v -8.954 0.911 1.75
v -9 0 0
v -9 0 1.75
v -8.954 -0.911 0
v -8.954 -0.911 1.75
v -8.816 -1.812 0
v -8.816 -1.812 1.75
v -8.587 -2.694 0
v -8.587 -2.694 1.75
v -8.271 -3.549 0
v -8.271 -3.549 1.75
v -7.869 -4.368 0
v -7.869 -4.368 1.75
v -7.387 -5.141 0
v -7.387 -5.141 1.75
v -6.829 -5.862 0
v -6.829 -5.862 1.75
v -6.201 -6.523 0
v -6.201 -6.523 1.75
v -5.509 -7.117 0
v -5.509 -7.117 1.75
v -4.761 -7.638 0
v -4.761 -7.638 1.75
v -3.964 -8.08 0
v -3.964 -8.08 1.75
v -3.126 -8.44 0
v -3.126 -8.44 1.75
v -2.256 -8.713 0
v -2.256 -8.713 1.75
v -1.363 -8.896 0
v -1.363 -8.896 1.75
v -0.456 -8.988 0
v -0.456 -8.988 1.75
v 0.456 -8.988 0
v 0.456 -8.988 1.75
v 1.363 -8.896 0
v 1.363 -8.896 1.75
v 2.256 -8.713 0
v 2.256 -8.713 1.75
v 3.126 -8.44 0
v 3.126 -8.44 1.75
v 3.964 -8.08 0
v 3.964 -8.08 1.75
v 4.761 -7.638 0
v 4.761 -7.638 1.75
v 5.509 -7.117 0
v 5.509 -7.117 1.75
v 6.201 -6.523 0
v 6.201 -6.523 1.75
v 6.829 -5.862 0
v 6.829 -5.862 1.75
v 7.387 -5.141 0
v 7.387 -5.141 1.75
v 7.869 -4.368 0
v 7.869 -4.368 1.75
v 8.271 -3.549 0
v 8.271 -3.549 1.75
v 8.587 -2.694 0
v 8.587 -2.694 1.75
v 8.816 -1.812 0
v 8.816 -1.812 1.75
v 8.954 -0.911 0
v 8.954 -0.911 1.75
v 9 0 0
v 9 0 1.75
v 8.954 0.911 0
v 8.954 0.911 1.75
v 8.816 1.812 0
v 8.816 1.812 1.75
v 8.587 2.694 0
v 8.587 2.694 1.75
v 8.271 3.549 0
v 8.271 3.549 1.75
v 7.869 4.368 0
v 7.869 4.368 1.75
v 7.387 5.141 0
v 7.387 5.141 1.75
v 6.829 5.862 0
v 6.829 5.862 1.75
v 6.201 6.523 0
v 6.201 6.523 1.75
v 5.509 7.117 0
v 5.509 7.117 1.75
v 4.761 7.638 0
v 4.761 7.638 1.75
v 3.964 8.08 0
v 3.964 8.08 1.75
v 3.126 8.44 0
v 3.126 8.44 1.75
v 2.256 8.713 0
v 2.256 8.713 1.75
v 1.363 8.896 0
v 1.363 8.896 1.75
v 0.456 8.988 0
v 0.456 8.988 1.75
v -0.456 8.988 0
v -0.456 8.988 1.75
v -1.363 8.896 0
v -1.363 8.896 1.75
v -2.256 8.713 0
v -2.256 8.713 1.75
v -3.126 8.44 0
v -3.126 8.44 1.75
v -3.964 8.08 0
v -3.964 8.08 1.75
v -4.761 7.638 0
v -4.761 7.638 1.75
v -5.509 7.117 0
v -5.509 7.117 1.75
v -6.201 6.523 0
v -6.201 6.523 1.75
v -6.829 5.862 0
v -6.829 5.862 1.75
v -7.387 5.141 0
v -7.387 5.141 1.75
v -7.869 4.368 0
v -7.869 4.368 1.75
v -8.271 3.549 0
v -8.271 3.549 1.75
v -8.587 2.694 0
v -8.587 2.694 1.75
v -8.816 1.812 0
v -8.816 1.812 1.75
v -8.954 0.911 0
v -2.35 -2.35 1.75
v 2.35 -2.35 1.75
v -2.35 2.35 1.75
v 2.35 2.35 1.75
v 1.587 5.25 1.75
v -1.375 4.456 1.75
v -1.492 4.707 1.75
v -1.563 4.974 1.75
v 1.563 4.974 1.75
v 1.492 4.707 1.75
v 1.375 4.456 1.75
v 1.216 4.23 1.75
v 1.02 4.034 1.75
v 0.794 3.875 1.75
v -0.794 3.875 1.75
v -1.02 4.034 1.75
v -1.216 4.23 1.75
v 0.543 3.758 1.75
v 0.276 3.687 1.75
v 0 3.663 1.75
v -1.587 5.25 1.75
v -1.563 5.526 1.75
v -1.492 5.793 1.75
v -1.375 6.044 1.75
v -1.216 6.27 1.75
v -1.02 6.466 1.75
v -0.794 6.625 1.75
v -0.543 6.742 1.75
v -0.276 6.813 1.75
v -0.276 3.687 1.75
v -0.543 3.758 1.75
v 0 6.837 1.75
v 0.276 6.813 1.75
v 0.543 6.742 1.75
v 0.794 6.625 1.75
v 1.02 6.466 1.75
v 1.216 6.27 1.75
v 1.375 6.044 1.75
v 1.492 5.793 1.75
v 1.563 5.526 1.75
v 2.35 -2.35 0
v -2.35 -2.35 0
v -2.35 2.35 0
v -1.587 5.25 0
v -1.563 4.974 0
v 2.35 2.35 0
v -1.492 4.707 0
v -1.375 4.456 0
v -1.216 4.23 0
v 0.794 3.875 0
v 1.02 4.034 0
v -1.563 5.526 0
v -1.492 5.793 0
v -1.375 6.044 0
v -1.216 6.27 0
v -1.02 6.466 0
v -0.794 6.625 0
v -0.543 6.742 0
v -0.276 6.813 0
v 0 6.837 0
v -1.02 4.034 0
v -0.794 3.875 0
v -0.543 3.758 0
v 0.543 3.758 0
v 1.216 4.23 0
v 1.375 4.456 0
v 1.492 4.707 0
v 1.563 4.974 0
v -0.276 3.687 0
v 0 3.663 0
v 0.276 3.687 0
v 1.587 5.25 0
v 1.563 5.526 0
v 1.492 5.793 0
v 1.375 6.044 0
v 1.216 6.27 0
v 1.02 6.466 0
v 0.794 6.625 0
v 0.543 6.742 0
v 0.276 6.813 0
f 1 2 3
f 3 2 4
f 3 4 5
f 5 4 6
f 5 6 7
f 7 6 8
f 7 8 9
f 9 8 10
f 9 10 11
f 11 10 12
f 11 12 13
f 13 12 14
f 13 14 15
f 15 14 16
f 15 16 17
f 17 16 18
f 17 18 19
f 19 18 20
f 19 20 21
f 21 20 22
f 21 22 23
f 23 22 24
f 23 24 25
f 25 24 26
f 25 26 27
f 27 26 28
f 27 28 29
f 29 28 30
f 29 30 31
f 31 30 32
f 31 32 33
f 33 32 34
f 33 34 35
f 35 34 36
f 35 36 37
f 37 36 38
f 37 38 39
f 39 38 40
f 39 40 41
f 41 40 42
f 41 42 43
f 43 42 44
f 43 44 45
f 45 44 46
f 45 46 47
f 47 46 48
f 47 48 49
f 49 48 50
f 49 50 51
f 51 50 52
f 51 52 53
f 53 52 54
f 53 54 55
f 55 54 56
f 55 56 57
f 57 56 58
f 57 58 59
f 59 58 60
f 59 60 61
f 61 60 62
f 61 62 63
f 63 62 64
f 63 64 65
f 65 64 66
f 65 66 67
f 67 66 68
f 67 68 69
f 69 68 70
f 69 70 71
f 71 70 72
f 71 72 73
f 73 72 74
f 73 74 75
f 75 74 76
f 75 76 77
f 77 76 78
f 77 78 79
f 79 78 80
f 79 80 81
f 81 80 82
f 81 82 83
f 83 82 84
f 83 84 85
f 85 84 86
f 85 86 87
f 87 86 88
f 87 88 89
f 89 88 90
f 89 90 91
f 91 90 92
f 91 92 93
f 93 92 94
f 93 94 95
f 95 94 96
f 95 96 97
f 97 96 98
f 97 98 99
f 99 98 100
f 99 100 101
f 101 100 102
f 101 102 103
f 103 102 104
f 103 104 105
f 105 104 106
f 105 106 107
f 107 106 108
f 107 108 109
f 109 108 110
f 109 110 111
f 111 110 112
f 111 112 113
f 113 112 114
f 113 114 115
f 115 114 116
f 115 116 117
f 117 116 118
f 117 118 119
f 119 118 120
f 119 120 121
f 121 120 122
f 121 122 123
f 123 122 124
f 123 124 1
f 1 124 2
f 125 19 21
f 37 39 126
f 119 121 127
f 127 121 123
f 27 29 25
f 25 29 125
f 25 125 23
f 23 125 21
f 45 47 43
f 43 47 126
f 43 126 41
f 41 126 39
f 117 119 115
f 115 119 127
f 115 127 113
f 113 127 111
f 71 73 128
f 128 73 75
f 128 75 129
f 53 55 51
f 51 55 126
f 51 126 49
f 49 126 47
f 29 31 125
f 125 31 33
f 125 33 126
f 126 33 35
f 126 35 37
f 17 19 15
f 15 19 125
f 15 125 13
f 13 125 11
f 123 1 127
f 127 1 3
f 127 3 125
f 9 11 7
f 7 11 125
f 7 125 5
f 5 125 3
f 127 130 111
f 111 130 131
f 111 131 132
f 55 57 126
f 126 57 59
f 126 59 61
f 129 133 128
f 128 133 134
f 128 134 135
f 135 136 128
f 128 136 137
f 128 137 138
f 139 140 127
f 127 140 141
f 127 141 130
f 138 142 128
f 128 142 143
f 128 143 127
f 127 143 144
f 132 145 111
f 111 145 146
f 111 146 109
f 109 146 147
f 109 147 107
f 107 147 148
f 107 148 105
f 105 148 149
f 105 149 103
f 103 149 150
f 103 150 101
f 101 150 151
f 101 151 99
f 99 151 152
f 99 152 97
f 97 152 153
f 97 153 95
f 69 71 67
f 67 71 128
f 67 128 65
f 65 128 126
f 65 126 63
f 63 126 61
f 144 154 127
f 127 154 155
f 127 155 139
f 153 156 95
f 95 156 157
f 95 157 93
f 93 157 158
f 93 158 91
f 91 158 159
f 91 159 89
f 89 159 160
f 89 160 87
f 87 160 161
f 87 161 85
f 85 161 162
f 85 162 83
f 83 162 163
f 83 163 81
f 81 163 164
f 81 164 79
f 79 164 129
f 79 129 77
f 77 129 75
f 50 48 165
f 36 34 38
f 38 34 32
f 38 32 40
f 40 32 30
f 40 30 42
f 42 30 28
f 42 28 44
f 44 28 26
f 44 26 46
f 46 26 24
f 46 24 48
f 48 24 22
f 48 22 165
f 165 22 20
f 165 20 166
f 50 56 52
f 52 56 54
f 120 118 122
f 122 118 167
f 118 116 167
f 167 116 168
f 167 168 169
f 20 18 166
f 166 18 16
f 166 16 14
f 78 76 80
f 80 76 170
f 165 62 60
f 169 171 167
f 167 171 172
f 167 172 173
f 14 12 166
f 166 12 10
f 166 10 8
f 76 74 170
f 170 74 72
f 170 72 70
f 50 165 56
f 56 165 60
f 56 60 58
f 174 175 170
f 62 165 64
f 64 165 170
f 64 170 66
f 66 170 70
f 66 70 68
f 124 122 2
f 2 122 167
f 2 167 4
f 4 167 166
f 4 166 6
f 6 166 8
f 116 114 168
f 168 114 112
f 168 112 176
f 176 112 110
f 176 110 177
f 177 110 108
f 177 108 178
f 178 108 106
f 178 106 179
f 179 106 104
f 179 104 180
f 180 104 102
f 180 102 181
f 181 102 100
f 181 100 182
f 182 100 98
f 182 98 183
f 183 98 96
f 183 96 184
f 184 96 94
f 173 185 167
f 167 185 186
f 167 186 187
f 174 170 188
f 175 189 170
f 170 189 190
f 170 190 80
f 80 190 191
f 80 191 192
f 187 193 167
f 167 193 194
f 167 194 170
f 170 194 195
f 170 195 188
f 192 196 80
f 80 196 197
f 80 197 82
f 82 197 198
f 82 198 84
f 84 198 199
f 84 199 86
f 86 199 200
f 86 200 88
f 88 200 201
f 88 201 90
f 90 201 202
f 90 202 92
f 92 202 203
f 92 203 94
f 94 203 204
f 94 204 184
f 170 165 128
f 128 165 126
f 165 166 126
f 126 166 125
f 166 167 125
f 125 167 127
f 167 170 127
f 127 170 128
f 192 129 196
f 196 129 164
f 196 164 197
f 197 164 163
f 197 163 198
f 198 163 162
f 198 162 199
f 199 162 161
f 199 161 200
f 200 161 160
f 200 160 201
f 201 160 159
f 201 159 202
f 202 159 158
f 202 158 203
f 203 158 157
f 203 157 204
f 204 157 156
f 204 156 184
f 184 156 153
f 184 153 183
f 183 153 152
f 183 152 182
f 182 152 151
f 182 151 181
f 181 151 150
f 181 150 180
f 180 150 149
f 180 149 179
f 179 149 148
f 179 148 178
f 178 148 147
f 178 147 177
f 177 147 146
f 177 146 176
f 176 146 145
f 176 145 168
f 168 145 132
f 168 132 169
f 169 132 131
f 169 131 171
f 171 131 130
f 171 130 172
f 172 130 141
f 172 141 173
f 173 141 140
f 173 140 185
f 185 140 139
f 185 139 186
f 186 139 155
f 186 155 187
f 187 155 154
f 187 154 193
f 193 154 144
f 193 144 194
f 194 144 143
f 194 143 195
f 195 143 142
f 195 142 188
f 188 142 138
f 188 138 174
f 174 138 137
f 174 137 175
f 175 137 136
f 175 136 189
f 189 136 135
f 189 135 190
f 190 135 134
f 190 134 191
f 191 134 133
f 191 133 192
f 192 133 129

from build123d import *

# Parameters (mm, degrees)
SKETCH1_R           = 9
BOSS_EXTRUDE1_DEPTH = 1.75
SKETCH2_R           = 1.5875
SKETCH2_W           = 4.7
SKETCH2_H           = 4.7
CUT_EXTRUDE1_DEPTH  = 2.75


with BuildPart() as part:
    # Sketch1 → Boss-Extrude1 (new body)
    with BuildSketch(Plane.XY):
        Circle(SKETCH1_R)
    extrude(amount=BOSS_EXTRUDE1_DEPTH)

    # Sketch2 → Cut-Extrude1 (cut, through all)
    with BuildSketch(Plane.XY.offset(1.75)):
        with Locations((0, 5.25)):
            Circle(SKETCH2_R)
        Rectangle(SKETCH2_W, SKETCH2_H)
    extrude(amount=-CUT_EXTRUDE1_DEPTH, mode=Mode.SUBTRACT)


solid = part.part
